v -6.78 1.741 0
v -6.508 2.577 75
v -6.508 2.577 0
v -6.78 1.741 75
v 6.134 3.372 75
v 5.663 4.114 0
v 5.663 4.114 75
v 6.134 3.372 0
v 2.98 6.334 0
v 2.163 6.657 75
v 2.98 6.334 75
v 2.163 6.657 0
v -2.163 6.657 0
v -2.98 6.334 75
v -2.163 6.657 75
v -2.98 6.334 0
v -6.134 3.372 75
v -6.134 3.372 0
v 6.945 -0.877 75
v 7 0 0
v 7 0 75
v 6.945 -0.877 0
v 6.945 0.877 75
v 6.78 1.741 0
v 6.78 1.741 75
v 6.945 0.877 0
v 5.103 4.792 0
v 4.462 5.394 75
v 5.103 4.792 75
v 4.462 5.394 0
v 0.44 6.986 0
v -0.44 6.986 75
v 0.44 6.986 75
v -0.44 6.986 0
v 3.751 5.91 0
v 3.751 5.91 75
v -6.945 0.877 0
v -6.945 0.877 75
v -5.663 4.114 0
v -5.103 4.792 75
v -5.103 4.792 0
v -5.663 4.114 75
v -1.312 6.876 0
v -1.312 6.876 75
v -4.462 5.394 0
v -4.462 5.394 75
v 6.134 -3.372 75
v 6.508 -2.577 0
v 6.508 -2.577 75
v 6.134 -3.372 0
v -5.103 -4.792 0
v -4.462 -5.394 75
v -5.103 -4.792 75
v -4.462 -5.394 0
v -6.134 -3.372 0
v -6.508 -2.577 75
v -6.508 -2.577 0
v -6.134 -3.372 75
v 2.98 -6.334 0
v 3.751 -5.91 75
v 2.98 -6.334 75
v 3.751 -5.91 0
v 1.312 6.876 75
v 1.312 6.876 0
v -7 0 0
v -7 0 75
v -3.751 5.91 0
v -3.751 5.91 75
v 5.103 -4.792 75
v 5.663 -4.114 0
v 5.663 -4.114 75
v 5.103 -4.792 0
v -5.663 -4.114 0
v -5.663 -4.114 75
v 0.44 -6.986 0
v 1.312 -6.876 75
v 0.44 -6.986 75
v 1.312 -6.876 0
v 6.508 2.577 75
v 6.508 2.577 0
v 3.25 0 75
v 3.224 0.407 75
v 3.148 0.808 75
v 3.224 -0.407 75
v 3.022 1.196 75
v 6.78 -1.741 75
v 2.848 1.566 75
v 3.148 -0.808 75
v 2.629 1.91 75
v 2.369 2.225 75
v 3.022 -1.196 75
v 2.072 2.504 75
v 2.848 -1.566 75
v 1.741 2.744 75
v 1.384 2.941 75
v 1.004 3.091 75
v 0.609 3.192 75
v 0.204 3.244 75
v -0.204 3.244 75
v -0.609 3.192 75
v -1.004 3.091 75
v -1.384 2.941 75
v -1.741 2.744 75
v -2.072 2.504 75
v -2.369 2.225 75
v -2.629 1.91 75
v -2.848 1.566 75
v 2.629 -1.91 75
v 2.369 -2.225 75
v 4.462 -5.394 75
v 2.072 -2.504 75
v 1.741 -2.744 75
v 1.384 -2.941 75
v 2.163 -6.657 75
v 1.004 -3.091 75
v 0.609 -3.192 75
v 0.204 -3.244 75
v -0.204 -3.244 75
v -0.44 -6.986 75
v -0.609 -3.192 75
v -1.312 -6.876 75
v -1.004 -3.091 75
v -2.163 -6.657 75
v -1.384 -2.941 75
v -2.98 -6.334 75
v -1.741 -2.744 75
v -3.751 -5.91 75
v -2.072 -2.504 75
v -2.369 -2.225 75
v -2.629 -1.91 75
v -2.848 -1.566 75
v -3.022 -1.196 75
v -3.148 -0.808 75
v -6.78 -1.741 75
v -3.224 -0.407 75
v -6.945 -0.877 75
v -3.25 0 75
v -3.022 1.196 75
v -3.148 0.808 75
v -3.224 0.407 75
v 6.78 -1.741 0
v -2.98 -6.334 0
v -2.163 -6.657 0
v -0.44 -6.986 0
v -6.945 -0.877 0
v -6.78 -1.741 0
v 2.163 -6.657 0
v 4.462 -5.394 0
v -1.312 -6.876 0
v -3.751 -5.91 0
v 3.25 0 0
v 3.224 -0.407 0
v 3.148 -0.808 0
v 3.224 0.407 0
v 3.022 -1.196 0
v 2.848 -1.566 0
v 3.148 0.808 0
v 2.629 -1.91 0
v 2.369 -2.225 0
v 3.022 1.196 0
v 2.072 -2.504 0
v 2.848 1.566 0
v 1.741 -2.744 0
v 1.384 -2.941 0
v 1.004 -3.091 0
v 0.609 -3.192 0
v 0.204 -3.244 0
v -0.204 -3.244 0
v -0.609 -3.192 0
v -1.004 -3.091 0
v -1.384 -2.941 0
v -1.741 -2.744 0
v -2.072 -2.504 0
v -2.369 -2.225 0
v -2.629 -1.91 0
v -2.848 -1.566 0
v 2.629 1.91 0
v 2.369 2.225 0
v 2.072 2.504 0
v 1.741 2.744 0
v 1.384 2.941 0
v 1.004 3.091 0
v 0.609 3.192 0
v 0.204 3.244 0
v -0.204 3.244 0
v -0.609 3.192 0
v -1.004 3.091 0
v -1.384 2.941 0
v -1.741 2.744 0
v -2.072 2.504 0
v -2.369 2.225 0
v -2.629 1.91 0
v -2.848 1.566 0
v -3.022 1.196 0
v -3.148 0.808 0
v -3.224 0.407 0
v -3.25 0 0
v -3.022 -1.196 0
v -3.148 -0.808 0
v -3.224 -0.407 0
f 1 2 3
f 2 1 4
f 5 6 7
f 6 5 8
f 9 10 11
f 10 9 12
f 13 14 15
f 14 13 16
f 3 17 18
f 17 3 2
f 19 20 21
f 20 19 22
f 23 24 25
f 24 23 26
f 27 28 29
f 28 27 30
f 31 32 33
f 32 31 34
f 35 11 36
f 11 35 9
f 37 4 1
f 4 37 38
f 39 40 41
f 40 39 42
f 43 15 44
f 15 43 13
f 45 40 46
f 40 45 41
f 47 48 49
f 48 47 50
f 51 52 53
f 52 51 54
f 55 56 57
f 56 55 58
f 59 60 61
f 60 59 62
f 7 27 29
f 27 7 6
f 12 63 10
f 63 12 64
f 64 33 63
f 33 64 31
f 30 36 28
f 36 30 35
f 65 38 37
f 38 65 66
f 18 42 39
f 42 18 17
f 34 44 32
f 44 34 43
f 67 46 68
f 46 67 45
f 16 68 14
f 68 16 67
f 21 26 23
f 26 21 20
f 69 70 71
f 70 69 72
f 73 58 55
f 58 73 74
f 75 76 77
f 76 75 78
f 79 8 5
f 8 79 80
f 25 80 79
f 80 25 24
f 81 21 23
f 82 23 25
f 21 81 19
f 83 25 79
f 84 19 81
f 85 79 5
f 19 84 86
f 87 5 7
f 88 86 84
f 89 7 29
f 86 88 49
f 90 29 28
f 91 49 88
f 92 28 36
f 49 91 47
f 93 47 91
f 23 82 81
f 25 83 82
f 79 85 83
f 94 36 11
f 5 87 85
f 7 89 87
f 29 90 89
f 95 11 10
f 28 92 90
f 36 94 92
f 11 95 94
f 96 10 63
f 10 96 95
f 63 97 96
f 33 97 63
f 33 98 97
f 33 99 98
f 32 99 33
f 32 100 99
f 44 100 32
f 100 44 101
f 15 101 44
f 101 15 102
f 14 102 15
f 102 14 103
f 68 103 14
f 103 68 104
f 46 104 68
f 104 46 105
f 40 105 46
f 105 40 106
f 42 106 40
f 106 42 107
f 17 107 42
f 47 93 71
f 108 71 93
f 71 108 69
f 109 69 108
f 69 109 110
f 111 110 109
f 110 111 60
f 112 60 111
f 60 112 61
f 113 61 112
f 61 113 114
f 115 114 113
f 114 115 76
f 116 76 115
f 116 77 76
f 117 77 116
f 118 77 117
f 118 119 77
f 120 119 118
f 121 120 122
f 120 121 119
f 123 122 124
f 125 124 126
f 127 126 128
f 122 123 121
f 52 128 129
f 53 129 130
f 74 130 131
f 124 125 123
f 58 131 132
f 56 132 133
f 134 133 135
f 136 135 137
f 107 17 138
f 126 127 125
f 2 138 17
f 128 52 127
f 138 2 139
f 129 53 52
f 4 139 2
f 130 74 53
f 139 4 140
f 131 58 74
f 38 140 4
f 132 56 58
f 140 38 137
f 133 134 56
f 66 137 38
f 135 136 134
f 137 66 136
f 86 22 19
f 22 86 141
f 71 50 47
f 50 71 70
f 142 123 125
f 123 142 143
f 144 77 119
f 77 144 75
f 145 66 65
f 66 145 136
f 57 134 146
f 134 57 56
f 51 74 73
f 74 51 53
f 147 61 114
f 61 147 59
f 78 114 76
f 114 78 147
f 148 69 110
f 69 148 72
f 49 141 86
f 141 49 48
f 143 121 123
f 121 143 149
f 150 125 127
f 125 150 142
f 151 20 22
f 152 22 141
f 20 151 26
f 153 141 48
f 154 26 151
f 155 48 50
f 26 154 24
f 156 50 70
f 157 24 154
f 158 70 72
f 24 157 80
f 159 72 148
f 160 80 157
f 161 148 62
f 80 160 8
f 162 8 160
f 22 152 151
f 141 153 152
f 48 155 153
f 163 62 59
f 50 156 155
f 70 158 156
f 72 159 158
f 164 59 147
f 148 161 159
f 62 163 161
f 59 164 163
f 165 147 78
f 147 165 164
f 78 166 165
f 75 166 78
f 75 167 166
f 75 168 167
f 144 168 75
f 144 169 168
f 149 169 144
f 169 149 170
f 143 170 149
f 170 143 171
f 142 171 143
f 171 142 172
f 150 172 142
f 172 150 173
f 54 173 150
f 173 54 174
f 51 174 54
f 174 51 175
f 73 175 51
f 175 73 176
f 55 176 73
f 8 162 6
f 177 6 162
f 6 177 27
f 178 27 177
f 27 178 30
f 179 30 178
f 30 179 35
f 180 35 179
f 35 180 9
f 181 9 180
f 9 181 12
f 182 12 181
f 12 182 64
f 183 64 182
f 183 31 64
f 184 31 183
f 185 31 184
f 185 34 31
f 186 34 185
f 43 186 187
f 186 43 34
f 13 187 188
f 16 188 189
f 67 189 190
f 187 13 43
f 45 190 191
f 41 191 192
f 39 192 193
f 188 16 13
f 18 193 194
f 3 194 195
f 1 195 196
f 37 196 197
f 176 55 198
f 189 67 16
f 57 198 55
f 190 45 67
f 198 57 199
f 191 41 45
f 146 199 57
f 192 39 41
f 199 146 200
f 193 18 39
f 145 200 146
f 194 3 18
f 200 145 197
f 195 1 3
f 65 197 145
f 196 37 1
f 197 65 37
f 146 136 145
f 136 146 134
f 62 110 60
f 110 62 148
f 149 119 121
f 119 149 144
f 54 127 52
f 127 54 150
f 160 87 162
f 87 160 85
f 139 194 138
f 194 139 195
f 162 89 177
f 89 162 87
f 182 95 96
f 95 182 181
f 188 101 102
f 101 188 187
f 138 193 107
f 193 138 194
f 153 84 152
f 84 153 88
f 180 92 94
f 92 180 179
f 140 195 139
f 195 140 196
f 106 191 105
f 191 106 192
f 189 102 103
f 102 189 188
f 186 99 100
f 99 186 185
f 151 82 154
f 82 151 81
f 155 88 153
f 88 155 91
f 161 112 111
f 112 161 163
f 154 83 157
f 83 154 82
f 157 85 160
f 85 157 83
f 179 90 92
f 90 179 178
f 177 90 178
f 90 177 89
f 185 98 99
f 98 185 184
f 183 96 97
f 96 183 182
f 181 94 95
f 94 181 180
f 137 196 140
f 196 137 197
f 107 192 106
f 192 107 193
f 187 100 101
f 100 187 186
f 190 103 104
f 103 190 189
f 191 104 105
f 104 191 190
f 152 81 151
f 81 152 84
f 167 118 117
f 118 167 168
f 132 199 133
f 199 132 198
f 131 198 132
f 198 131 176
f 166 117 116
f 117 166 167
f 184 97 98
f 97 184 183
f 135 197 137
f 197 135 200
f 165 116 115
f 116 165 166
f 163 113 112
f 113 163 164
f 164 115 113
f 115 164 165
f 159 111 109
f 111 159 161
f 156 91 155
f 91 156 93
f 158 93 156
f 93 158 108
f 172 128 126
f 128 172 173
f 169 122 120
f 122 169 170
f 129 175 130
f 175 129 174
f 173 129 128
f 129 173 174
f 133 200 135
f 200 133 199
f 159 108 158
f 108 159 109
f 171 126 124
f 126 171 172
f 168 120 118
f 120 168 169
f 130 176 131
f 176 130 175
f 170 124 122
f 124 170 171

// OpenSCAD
$fn = 50;


difference() {
	union() {
		cylinder(h = 75, r = 7.0000000000);
	}
	union() {
		translate(v = [0, 0, -100]) {
			cylinder(h = 200, r = 3.2500000000);
		}
	}
}
